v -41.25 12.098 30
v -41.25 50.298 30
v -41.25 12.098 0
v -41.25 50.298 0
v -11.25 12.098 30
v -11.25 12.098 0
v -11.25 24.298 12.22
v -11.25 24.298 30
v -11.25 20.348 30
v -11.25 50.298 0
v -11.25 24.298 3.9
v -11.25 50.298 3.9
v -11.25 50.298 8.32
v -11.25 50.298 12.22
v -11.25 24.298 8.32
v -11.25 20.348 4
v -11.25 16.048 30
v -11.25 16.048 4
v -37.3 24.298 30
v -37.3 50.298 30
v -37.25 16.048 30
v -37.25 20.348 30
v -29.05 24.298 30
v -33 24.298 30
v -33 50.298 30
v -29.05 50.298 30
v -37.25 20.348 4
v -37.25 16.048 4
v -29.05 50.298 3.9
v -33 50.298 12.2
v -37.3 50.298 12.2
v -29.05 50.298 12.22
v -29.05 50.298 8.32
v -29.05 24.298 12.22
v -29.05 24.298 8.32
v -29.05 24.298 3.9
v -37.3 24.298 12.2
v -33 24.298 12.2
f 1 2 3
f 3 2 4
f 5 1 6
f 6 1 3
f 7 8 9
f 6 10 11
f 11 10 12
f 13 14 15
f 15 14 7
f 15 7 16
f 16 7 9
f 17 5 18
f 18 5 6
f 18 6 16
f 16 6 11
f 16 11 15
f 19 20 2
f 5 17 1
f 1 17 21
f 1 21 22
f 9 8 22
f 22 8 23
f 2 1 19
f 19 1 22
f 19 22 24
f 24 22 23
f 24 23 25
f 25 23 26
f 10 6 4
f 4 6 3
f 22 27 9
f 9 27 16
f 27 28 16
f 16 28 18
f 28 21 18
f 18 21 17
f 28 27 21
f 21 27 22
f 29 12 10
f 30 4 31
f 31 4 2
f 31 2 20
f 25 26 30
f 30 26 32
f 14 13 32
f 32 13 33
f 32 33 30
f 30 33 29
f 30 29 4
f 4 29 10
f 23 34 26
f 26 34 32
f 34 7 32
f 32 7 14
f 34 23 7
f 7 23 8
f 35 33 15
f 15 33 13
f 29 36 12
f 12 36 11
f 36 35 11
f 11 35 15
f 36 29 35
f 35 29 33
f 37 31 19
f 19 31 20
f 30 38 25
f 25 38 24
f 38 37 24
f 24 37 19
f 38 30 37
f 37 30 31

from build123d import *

# Parameters (mm, degrees)
SKETCH1_W           = 30
SKETCH1_H           = 12.2
BOSS_EXTRUDE1_DEPTH = 30
SKETCH2_W           = 26
SKETCH2_H           = 4.3
CUT_EXTRUDE1_DEPTH  = 26
SKETCH3_W           = 30
SKETCH3_H           = 30
BOSS_EXTRUDE2_DEPTH = 26
SKETCH4_W           = 17.8
SKETCH4_H           = 17.78
CUT_EXTRUDE2_DEPTH  = 26
SKETCH6_W           = 4.42
SKETCH6_H           = 26
CUT_EXTRUDE3_DEPTH  = 17.8
SKETCH9_W           = 4.3
SKETCH9_H           = 26
CUT_EXTRUDE4_DEPTH  = 17.8


with BuildPart() as part:
    # Sketch1 → Boss-Extrude1 (new body)
    with BuildSketch(Plane.XY):
        with Locations((-26.249929658, 18.197752809)):
            Rectangle(SKETCH1_W, SKETCH1_H)
    extrude(amount=BOSS_EXTRUDE1_DEPTH)

    # Sketch2 → Cut-Extrude1 (cut)
    with BuildSketch(Plane(origin=(-11.249929658, 0, 0), x_dir=(0, 0, -1), z_dir=(1, 0, 0))):
        with Locations((-17, 18.197752809)):
            Rectangle(SKETCH2_W, SKETCH2_H)
    extrude(amount=-CUT_EXTRUDE1_DEPTH, mode=Mode.SUBTRACT)

    # Sketch3 → Boss-Extrude2 (add)
    with BuildSketch(Plane(origin=(0, 24.297752809, 0), x_dir=(1, 0, 0), z_dir=(0, 1, 0))):
        with Locations((-26.249929658, -15)):
            Rectangle(SKETCH3_W, SKETCH3_H)
    extrude(amount=BOSS_EXTRUDE2_DEPTH)

    # Sketch4 → Cut-Extrude2 (cut)
    with BuildSketch(Plane(origin=(0, 50.297752809, 0), x_dir=(1, 0, 0), z_dir=(0, 1, 0))):
        with Locations((-20.149929658, -21.11)):
            Rectangle(SKETCH4_W, SKETCH4_H)
    extrude(amount=-CUT_EXTRUDE2_DEPTH, mode=Mode.SUBTRACT)

    # Sketch6 → Cut-Extrude3 (cut)
    with BuildSketch(Plane(origin=(-11.249929658, 0, 0), x_dir=(0, 0, -1), z_dir=(1, 0, 0))):
        with Locations((-6.11, 37.297752809)):
            Rectangle(SKETCH6_W, SKETCH6_H)
    extrude(amount=-CUT_EXTRUDE3_DEPTH, mode=Mode.SUBTRACT)

    # Sketch9 → Cut-Extrude4 (cut)
    with BuildSketch(Plane.XY.offset(30)):
        with Locations((-35.149929658, 37.297752809)):
            Rectangle(SKETCH9_W, SKETCH9_H)
    extrude(amount=-CUT_EXTRUDE4_DEPTH, mode=Mode.SUBTRACT)


solid = part.part
